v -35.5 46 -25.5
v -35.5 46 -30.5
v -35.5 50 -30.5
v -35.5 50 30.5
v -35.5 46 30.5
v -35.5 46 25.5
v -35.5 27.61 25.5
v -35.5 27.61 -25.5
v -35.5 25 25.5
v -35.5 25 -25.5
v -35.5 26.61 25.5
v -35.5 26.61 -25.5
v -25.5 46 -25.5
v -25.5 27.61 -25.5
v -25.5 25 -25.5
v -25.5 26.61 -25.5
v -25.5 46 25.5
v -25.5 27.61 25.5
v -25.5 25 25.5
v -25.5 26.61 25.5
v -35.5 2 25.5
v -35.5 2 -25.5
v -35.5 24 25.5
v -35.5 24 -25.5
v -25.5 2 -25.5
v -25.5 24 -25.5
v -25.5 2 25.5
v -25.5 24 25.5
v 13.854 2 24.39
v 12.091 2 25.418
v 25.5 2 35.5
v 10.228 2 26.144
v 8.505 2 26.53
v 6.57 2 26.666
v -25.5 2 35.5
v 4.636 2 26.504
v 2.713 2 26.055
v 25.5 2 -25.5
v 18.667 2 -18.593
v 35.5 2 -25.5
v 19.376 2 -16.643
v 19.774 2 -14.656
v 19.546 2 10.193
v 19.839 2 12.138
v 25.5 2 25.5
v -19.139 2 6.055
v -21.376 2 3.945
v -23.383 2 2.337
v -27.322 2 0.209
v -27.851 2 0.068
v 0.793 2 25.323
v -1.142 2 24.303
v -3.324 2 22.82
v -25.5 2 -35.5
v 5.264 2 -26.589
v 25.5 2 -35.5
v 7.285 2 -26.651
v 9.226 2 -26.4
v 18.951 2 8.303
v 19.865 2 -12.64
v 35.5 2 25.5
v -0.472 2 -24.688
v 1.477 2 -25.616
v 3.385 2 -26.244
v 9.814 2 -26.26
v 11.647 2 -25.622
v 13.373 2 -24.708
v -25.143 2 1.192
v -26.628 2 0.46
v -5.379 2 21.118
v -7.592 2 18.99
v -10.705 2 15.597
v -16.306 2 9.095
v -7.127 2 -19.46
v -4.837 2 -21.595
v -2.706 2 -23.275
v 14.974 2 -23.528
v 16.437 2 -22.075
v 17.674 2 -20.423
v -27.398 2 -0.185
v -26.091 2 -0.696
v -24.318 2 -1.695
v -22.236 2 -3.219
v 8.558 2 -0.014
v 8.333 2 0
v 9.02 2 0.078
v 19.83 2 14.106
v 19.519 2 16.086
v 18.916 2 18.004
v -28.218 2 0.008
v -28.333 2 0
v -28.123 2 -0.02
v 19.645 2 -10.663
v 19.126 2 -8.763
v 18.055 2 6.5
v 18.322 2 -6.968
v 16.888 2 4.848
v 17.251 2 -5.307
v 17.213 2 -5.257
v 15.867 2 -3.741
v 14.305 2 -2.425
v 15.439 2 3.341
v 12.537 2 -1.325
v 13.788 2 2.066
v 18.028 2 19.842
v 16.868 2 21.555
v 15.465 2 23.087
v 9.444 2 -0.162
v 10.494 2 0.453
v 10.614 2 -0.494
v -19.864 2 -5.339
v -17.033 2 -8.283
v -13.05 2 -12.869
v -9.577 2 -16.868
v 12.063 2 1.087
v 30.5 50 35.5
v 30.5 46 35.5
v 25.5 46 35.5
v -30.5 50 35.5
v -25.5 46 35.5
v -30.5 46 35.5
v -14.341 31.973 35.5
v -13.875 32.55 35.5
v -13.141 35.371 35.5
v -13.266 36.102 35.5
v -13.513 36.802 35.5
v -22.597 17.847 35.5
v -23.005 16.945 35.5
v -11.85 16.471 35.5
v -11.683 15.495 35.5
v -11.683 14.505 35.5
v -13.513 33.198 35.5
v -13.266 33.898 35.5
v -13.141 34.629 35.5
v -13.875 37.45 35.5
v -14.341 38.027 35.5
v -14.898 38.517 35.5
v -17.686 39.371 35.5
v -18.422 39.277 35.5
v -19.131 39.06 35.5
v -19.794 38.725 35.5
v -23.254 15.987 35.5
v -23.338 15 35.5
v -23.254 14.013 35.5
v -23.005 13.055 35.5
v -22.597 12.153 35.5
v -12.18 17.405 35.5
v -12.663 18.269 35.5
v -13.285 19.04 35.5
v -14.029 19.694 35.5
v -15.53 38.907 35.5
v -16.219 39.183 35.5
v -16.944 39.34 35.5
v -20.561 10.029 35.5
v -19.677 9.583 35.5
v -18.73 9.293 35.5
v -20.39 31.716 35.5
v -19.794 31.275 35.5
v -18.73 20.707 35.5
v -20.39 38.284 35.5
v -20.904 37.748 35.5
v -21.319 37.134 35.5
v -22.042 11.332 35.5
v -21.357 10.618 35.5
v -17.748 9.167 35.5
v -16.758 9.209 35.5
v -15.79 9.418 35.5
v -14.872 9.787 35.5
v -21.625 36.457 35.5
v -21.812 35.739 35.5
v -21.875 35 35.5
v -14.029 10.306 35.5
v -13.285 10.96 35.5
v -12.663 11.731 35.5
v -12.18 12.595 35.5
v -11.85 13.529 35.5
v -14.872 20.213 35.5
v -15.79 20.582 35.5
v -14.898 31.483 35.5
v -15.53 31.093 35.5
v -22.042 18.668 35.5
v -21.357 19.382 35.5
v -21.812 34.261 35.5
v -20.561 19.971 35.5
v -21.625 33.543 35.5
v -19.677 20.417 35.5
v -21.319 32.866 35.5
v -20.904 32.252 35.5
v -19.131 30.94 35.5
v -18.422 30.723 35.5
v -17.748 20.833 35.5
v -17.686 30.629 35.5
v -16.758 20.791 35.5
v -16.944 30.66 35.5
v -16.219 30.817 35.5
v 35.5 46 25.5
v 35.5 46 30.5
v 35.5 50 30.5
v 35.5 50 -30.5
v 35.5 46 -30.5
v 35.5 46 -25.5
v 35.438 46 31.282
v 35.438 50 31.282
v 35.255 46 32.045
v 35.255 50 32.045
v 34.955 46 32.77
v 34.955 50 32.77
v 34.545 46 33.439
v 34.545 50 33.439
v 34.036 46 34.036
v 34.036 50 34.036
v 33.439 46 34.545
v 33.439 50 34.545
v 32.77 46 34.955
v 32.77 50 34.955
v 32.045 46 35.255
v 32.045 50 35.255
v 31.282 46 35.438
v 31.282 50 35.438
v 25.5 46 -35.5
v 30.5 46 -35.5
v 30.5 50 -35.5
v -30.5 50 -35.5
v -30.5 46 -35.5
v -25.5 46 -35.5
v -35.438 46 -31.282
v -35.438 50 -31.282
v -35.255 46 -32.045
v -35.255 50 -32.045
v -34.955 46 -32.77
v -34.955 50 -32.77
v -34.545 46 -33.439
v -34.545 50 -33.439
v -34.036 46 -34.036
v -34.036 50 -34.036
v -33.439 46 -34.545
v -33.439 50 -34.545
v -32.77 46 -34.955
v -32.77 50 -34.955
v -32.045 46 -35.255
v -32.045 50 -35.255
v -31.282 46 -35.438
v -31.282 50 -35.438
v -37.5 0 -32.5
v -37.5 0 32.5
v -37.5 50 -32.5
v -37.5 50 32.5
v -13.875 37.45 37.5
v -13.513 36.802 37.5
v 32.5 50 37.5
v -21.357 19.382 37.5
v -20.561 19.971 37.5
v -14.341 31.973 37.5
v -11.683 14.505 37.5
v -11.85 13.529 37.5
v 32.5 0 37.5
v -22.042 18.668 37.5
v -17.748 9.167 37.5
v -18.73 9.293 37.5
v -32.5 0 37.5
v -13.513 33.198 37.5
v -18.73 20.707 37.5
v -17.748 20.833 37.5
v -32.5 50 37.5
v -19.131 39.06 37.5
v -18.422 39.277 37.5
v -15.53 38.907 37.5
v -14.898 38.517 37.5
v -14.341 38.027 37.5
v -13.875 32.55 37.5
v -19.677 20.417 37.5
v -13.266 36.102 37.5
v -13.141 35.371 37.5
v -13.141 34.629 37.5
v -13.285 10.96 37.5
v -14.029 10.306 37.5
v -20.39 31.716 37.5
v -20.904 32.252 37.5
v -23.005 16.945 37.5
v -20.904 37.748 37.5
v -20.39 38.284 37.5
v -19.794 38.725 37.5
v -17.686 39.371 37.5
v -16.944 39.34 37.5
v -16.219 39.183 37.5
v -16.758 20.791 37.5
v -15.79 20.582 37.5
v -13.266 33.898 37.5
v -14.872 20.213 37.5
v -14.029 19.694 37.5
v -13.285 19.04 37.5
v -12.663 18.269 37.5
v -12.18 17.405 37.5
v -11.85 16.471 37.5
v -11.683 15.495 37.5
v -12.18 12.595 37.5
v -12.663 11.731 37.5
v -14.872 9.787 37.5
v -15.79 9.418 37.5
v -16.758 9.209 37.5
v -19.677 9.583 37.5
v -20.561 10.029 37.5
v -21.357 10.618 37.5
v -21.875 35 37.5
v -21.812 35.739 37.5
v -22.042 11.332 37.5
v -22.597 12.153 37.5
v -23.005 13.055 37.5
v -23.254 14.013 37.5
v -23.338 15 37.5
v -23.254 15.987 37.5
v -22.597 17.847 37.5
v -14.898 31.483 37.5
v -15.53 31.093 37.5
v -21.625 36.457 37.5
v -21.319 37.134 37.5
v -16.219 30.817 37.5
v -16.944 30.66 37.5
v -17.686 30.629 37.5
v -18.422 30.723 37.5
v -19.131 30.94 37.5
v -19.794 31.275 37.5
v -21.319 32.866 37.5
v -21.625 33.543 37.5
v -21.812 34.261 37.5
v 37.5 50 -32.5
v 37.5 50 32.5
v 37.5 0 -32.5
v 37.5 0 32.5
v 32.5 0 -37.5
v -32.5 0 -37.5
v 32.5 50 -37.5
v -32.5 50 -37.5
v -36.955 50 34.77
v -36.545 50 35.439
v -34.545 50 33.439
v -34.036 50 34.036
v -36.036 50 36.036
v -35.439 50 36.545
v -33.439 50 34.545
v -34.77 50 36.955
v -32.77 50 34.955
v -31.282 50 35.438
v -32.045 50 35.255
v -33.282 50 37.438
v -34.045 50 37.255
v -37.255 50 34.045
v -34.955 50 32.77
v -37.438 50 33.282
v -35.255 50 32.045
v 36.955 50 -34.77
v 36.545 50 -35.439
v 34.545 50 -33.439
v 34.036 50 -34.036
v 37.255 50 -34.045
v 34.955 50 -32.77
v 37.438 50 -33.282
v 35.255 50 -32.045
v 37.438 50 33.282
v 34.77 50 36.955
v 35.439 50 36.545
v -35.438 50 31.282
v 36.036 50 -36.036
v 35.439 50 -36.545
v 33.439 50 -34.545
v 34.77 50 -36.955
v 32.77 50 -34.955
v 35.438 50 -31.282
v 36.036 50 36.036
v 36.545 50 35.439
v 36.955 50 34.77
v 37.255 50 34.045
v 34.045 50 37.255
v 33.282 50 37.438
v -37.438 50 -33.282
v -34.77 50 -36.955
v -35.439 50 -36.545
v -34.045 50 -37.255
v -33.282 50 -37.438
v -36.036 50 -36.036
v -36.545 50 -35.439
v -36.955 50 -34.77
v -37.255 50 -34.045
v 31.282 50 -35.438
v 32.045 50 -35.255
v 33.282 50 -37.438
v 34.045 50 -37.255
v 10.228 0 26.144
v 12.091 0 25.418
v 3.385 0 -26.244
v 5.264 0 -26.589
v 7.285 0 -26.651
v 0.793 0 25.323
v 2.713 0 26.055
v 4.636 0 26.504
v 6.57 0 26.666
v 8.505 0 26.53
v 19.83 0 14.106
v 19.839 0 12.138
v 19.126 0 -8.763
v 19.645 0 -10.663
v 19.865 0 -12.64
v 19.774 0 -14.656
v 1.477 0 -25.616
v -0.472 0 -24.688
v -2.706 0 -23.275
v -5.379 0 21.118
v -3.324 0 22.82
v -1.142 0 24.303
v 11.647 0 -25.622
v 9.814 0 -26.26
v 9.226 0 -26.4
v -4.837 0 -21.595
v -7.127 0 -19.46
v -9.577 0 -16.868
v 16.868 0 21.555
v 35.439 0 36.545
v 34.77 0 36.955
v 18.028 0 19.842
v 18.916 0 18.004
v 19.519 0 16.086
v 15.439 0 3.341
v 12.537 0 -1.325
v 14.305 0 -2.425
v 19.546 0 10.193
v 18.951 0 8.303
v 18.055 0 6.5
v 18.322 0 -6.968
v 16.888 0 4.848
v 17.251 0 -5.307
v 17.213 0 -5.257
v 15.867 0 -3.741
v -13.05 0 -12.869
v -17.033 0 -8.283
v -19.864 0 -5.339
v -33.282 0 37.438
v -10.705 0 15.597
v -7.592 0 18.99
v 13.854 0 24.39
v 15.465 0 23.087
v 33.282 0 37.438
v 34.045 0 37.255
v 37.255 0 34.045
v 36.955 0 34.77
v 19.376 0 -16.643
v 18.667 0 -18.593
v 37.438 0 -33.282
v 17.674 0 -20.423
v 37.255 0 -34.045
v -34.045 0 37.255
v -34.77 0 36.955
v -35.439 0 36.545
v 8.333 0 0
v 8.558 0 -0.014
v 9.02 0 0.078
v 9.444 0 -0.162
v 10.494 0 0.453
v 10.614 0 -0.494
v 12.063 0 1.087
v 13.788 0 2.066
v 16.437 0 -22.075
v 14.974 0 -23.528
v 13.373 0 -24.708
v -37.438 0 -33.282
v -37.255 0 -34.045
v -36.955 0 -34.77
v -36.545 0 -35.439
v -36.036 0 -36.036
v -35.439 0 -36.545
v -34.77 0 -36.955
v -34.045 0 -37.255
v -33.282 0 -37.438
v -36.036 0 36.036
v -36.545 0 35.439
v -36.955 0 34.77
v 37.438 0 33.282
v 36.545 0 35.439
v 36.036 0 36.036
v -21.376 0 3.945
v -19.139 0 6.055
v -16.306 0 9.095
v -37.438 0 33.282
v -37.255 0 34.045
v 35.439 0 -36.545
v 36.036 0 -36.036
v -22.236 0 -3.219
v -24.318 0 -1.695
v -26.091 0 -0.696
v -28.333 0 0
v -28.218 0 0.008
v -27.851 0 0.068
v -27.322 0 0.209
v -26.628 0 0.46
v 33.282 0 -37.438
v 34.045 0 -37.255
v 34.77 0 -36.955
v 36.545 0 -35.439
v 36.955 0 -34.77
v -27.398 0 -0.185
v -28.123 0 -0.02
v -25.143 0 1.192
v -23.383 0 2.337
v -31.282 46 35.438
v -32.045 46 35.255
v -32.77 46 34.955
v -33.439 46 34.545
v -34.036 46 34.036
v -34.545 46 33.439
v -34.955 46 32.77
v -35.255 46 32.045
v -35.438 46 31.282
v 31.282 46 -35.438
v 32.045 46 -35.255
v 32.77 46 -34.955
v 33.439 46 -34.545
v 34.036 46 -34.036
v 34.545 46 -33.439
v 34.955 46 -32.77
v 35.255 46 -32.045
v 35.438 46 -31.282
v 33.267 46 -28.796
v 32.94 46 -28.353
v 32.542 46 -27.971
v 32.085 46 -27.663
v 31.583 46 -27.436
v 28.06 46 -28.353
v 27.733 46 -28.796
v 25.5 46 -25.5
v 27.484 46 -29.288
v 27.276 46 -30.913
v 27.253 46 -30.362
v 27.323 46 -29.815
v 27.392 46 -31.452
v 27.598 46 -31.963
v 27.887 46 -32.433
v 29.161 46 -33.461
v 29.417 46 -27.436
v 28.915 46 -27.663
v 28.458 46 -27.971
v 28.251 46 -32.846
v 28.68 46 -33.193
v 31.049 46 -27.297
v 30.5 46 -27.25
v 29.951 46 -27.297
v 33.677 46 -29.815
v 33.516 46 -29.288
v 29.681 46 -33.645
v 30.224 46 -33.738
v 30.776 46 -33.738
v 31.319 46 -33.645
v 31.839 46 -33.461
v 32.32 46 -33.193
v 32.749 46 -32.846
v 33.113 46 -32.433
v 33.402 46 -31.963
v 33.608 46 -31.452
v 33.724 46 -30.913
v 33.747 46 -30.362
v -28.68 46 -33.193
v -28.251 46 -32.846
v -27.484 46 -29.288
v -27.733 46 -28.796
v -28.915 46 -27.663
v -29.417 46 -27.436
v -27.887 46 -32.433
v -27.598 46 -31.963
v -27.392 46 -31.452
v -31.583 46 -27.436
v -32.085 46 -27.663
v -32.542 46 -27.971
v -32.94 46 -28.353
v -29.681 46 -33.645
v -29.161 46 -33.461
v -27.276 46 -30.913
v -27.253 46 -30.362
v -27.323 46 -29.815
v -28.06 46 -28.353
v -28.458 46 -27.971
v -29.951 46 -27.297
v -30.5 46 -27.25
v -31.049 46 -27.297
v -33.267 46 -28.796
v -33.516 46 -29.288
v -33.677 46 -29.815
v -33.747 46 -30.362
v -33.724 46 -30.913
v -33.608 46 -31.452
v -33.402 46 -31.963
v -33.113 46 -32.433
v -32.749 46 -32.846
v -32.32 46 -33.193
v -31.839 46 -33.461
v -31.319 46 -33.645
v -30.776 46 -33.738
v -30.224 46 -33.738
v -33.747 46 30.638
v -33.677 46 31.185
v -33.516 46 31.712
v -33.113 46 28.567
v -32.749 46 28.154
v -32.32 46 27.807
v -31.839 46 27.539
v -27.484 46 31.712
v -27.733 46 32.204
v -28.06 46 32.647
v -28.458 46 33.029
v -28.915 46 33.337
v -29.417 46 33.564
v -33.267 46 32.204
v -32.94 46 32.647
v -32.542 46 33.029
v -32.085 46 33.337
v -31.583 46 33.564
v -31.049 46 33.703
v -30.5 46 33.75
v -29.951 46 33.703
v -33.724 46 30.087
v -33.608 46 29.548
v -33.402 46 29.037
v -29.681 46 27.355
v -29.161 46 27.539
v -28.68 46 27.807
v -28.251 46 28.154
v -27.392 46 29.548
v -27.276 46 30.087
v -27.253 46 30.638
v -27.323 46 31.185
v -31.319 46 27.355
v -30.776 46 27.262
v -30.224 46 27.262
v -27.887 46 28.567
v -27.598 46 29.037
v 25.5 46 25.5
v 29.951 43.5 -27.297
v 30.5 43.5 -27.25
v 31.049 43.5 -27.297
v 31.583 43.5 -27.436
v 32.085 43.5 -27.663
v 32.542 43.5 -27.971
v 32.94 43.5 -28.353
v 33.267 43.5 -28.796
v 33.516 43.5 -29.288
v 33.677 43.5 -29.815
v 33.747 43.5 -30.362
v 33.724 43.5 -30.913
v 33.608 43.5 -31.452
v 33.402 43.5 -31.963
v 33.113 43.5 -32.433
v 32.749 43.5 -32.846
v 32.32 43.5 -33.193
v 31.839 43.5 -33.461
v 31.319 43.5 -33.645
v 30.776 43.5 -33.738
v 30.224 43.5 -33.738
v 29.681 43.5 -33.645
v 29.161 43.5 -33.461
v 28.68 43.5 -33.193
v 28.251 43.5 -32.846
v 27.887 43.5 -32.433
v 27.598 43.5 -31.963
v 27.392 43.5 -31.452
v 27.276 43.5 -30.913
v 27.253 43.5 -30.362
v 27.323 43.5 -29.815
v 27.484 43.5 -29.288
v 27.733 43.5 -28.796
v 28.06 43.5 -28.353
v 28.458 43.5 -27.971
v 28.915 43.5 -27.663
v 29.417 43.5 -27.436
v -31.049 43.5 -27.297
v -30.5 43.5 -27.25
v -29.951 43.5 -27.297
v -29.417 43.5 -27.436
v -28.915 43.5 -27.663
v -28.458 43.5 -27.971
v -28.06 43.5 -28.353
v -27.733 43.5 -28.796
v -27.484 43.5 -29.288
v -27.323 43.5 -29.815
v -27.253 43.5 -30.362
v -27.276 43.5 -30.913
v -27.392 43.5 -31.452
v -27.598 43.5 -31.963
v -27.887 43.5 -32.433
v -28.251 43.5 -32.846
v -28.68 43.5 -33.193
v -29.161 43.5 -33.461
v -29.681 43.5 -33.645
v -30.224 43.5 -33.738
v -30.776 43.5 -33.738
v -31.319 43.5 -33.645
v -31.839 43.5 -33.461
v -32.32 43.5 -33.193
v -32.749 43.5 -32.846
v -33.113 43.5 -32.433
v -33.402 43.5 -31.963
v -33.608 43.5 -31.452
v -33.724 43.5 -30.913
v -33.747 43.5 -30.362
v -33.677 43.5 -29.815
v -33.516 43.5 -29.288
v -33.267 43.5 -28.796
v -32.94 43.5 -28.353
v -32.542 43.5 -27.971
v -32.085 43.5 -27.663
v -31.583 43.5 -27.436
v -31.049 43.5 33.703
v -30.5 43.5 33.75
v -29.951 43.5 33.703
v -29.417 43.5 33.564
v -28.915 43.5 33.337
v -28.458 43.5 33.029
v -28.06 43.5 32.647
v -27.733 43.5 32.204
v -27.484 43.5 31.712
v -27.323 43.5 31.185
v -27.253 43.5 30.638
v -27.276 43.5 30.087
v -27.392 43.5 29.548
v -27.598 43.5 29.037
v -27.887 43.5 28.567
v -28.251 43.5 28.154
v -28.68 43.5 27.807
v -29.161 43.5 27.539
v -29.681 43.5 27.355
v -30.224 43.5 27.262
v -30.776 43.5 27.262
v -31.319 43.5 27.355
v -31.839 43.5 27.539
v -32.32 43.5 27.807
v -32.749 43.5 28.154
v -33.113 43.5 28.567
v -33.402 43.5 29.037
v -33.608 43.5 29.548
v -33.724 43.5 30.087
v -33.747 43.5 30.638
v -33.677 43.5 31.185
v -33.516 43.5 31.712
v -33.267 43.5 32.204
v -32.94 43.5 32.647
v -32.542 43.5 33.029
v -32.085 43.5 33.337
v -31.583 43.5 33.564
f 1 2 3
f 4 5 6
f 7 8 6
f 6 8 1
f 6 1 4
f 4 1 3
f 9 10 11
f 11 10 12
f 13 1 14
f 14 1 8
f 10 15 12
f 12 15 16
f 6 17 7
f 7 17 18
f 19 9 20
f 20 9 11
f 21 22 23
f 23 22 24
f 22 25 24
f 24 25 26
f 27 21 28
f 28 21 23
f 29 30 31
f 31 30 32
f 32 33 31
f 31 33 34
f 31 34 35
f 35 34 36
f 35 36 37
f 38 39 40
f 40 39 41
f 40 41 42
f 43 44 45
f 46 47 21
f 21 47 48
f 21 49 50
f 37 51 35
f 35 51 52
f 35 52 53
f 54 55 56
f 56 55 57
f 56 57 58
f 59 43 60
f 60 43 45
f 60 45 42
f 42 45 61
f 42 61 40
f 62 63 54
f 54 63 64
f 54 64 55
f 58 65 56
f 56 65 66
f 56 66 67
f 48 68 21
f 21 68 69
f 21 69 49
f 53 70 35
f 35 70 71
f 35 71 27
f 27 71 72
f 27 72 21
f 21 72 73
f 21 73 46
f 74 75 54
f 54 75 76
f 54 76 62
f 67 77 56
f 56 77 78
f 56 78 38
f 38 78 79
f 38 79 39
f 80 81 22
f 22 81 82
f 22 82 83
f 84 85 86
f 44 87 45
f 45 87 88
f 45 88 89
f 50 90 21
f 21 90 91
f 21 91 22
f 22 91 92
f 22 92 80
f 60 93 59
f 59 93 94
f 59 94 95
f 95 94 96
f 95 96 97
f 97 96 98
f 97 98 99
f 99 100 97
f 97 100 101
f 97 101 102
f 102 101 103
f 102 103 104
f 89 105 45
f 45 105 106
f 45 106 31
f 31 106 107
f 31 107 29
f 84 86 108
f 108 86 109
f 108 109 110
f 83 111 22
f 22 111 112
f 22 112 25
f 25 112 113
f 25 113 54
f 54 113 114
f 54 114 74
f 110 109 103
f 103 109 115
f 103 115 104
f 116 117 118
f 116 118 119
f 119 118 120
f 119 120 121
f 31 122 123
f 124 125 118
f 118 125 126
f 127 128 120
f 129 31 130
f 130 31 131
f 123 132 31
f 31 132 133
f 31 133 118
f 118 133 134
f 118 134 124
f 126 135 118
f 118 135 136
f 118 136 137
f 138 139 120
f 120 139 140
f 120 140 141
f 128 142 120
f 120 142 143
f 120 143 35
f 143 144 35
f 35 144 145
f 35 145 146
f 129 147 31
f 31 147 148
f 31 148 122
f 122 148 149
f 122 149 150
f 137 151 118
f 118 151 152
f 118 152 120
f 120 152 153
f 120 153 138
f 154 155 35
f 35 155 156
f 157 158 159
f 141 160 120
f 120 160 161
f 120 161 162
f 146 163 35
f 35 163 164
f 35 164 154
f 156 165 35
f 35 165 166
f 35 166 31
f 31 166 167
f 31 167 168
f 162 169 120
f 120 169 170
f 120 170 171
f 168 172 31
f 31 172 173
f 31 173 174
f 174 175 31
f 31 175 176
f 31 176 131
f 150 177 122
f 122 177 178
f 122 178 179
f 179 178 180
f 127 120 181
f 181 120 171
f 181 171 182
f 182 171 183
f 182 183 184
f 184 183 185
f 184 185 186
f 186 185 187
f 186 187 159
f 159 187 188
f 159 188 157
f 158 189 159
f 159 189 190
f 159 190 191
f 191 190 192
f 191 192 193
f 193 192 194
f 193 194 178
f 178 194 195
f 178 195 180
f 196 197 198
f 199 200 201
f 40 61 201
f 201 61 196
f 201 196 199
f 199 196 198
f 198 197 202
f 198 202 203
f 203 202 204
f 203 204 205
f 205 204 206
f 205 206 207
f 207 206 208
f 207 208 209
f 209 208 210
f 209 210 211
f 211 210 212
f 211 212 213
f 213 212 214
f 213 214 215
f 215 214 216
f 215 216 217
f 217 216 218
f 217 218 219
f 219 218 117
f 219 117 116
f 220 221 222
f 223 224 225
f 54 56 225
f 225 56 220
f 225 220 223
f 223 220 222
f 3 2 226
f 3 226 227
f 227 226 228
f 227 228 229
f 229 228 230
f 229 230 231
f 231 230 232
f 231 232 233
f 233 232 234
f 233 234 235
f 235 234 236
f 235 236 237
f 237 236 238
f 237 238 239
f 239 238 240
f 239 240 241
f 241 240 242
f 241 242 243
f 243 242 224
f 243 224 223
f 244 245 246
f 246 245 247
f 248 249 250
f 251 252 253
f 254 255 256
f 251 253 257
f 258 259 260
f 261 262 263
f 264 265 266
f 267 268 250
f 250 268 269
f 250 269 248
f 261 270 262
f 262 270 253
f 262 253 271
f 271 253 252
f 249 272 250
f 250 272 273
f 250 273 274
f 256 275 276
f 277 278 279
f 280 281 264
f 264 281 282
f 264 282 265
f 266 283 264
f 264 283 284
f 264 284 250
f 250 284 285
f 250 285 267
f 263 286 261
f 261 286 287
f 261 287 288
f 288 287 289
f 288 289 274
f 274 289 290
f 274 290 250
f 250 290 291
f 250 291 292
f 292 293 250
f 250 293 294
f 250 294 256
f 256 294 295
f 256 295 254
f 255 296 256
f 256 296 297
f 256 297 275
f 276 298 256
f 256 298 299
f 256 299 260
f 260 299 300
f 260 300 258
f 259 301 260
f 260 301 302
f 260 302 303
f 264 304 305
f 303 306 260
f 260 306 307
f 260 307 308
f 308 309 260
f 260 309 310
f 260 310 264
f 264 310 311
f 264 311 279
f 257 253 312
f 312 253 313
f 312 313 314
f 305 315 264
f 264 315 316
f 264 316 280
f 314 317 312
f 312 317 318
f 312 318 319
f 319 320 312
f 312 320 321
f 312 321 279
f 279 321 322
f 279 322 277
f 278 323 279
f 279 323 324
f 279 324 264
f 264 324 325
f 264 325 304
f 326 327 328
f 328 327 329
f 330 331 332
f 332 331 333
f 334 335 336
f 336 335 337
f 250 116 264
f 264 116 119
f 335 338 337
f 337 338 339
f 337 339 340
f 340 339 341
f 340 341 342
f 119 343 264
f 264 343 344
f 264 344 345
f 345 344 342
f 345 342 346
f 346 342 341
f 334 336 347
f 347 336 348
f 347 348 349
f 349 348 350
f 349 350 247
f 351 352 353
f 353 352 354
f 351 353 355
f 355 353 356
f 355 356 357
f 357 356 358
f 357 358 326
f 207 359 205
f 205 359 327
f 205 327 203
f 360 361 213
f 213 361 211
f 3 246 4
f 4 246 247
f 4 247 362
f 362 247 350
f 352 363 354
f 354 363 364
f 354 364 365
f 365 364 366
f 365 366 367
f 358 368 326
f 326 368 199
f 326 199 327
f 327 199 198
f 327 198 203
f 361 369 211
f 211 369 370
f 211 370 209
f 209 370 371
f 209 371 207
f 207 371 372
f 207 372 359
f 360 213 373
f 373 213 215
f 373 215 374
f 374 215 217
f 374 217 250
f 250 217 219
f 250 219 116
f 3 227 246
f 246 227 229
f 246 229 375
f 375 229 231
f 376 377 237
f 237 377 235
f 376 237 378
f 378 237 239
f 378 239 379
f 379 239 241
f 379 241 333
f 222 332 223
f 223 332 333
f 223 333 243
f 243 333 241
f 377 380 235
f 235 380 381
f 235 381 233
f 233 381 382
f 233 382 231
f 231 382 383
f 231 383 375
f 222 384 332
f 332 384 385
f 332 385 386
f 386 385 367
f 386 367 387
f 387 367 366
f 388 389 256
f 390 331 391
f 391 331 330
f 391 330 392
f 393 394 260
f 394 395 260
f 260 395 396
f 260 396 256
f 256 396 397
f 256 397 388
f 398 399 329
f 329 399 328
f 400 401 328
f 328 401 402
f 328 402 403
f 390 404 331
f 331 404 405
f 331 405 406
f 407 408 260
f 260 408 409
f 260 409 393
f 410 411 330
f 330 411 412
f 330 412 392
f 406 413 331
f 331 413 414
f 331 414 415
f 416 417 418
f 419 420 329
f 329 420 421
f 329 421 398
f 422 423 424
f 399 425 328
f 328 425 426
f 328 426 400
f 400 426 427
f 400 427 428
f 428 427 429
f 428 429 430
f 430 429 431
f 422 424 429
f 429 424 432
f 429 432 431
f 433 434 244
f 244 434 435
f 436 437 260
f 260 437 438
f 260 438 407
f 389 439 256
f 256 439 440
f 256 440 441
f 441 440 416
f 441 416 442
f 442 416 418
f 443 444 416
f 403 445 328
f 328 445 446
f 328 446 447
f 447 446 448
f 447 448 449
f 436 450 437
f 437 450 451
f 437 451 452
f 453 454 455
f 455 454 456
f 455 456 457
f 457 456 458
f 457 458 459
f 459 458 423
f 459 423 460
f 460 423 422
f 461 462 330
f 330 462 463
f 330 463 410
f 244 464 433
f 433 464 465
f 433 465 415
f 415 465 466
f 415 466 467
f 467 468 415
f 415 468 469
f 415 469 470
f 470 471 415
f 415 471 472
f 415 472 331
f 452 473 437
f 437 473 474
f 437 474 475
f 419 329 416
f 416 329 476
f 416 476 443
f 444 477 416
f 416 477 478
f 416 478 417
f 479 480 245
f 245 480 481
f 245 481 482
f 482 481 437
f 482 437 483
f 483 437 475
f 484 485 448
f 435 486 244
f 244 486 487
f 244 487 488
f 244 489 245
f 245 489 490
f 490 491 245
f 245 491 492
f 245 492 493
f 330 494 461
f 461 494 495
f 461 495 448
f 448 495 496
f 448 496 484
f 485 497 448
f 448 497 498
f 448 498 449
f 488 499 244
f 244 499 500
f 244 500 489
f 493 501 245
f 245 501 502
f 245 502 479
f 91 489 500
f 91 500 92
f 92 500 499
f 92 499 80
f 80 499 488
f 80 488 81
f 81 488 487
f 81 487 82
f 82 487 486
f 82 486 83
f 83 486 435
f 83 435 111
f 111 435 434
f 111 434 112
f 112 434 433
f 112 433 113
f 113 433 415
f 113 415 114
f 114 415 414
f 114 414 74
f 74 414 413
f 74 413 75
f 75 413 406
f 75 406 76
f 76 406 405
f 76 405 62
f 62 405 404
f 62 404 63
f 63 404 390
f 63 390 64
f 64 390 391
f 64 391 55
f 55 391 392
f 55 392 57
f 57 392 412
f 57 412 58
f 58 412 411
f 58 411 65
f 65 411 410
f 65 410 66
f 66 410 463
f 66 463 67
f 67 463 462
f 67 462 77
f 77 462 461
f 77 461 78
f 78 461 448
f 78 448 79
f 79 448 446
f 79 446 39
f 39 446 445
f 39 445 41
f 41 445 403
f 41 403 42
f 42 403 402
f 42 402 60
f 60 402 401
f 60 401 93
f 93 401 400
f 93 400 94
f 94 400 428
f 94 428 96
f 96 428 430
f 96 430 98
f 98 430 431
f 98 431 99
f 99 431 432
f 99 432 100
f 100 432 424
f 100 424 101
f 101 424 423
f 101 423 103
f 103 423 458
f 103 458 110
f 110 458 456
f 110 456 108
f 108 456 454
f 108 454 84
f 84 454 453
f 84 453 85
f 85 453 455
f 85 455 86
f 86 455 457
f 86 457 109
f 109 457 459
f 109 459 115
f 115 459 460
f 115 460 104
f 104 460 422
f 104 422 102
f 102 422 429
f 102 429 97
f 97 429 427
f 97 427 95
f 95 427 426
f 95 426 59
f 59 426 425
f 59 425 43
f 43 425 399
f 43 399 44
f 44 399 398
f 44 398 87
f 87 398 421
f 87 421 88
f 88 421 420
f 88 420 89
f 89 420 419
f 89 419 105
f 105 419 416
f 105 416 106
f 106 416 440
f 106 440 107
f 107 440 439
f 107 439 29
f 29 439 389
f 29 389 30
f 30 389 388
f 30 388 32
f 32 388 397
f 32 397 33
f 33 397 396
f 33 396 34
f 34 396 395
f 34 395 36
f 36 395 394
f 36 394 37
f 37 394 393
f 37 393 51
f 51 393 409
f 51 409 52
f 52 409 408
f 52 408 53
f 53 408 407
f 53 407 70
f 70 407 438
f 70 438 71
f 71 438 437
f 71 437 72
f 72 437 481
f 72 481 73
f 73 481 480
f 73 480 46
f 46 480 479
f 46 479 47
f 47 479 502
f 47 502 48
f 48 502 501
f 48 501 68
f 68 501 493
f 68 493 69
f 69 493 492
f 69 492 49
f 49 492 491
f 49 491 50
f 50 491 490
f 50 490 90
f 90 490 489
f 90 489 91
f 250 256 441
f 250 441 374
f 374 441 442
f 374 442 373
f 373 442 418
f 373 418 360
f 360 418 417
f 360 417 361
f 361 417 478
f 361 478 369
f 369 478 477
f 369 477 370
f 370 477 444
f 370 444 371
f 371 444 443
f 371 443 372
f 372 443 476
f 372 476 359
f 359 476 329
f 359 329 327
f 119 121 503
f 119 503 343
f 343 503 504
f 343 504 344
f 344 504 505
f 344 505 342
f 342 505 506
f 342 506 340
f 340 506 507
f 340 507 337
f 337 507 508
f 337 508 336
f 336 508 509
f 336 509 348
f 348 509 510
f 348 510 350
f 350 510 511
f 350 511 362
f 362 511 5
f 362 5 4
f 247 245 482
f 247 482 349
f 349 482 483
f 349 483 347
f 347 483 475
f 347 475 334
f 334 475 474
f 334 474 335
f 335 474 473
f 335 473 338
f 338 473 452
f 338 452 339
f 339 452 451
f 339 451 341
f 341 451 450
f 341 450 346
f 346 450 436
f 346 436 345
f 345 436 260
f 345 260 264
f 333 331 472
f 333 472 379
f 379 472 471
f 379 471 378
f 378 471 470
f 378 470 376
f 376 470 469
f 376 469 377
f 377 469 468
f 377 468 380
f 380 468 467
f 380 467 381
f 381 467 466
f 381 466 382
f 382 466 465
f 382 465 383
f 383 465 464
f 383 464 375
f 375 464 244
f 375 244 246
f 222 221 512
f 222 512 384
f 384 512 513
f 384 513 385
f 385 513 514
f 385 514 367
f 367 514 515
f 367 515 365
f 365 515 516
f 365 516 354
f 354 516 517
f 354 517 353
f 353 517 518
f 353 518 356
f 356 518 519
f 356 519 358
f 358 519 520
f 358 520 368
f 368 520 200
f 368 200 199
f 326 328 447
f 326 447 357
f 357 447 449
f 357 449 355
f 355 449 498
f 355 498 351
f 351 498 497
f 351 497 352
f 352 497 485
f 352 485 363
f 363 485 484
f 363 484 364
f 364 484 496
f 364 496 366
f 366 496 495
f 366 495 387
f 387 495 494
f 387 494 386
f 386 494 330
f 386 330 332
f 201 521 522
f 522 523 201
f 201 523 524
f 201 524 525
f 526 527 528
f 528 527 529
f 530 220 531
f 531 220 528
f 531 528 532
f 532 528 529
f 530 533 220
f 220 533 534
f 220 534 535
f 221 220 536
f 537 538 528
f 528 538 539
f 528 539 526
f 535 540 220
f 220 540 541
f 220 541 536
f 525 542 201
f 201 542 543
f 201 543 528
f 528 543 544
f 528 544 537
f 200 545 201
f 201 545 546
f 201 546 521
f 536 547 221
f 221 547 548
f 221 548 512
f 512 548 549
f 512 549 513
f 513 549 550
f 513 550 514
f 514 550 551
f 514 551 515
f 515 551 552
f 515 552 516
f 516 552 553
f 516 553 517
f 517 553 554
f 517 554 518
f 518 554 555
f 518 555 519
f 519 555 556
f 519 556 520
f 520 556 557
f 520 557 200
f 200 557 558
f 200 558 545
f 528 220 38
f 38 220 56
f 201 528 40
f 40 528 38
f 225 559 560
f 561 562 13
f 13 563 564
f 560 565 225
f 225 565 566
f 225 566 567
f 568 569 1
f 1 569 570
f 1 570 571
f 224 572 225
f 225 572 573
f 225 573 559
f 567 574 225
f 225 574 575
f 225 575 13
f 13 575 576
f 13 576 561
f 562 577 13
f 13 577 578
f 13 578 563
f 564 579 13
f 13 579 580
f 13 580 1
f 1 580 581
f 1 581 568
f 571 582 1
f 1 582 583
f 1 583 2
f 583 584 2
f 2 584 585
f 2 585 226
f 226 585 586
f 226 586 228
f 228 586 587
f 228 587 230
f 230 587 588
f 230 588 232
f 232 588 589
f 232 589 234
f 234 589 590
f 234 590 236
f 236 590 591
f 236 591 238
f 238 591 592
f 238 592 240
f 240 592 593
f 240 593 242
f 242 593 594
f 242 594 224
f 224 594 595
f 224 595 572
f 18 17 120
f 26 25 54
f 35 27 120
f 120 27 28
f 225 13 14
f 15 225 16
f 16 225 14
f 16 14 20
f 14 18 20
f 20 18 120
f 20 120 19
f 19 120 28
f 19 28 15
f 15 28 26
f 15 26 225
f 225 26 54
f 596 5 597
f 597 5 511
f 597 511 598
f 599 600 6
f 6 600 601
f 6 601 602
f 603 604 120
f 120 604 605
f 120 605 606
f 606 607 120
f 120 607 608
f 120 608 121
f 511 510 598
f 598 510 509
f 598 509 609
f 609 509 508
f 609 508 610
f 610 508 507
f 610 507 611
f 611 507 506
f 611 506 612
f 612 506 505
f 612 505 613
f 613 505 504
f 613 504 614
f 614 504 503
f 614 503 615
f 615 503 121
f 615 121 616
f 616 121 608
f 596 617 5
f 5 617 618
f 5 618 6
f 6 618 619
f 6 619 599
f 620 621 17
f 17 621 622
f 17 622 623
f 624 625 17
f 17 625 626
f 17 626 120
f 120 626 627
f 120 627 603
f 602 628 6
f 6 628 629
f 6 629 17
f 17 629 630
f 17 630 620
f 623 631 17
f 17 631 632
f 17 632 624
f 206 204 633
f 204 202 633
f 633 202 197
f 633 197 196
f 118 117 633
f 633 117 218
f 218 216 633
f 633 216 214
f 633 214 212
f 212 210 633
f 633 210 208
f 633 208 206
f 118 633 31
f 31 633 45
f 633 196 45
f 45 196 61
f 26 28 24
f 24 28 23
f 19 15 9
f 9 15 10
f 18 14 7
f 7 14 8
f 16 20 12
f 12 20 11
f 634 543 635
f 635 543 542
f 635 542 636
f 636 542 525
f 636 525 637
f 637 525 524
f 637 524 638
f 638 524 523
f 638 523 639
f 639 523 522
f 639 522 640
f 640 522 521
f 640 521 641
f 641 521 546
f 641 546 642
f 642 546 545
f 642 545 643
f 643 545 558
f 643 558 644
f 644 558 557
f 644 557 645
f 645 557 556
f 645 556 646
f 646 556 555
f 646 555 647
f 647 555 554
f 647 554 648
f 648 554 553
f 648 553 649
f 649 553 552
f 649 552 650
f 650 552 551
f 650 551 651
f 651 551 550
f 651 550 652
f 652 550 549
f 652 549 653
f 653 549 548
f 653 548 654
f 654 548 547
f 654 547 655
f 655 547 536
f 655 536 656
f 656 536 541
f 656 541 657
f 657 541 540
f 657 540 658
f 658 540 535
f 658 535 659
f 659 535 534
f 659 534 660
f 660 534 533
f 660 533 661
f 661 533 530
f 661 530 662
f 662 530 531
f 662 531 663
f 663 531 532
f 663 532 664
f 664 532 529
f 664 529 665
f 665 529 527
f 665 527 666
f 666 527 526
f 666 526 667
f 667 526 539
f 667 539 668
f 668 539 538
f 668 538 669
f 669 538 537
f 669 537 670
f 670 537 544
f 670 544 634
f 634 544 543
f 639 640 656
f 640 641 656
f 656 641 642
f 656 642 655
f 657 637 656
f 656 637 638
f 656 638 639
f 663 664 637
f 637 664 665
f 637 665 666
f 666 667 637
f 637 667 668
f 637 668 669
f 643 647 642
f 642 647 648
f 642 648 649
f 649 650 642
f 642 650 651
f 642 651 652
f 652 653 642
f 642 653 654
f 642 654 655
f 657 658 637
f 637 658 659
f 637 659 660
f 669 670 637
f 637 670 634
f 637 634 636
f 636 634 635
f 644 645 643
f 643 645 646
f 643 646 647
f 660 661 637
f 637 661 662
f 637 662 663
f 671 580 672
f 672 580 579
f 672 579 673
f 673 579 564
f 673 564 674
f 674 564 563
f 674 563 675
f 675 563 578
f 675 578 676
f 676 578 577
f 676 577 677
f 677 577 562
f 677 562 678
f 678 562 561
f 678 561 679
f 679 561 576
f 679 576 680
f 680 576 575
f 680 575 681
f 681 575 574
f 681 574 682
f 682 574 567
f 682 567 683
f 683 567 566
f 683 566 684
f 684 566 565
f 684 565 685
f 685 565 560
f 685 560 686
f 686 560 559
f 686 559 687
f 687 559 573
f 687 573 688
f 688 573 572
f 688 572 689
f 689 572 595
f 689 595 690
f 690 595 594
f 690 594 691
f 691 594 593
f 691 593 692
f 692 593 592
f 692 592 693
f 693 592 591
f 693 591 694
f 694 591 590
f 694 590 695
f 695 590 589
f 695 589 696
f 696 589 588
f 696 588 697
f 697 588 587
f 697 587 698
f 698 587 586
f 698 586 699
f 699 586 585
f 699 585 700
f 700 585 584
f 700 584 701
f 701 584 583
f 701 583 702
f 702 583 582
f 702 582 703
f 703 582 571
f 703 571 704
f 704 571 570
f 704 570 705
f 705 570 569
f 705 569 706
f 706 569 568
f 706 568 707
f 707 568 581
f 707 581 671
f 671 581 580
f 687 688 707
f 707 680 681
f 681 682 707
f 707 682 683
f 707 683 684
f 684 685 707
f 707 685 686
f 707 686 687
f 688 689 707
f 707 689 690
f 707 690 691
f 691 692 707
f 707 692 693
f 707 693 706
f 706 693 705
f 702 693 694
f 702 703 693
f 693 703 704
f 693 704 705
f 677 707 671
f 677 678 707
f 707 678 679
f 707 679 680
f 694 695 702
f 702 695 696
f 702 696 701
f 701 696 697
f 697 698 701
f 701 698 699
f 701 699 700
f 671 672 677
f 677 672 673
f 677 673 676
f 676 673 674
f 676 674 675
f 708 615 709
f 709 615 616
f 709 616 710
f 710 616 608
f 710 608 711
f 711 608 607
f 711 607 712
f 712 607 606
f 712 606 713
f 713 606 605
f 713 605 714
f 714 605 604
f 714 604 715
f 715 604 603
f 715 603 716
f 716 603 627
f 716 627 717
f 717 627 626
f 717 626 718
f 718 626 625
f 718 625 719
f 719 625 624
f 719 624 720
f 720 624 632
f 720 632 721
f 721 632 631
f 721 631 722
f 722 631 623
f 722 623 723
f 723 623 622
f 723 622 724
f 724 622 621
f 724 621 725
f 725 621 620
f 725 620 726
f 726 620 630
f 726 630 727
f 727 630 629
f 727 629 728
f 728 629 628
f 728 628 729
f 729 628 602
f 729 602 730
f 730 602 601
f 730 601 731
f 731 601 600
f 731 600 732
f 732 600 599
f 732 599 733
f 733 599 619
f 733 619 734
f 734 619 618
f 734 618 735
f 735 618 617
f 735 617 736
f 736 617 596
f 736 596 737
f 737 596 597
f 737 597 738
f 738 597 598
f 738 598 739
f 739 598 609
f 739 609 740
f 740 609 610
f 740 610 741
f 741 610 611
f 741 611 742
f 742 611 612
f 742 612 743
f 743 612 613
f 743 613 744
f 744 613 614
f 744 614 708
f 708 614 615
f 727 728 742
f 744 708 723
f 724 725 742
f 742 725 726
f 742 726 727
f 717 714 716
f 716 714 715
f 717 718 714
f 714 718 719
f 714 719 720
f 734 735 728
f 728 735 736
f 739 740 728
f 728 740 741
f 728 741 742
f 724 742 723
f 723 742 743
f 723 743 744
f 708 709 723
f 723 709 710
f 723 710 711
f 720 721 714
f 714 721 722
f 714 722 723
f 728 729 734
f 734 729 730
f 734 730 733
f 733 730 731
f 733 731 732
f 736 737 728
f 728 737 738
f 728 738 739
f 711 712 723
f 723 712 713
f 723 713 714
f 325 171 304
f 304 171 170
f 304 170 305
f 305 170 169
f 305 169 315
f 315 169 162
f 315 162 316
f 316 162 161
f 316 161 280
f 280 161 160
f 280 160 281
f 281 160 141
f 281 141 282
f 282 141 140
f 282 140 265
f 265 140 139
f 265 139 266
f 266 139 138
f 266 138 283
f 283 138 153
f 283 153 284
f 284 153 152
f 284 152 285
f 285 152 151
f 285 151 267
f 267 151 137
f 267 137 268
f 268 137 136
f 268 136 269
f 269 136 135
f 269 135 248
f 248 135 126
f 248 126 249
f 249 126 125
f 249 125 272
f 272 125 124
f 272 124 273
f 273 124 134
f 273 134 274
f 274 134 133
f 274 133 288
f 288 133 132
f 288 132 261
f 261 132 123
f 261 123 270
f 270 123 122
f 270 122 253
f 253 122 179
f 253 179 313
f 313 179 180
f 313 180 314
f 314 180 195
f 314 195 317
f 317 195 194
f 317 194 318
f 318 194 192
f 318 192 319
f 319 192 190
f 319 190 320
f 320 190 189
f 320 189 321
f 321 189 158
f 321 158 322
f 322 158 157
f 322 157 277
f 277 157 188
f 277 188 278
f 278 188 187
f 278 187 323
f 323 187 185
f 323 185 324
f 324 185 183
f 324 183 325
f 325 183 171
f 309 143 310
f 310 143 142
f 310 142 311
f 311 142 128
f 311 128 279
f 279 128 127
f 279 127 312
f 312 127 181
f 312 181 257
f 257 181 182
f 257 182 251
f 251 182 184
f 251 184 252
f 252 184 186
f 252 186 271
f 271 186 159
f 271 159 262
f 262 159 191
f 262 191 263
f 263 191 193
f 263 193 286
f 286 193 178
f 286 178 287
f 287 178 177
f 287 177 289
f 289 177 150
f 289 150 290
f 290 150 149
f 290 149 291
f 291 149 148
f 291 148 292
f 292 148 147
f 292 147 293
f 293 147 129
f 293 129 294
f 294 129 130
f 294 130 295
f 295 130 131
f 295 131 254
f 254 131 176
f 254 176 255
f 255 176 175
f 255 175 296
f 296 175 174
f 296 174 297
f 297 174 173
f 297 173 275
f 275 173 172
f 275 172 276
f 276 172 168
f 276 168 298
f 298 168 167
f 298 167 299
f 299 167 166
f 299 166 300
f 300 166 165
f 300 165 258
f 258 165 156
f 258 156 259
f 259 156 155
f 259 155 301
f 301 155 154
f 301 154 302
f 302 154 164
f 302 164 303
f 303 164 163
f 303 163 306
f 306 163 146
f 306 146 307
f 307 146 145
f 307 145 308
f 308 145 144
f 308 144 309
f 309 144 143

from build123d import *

# Parameters (mm, degrees)
SKETCH1_W           = 75
SKETCH1_H           = 75
BOSS_EXTRUDE1_DEPTH = 50
SKETCH2_W           = 71
SKETCH2_H           = 71
CUT_EXTRUDE1_DEPTH  = 48
CUT_EXTRUDE6_DEPTH  = 2
FILLET4_R           = 5
FILLET5_R           = 5
FILLET6_R           = 5
FILLET7_R           = 5
SKETCH4_W           = 10
SKETCH4_H           = 10
BOSS_EXTRUDE2_DEPTH = 44
SKETCH5_W           = 10
SKETCH5_H           = 10
BOSS_EXTRUDE3_DEPTH = 44
SKETCH8_W           = 51
SKETCH8_H           = 1
BOSS_EXTRUDE4_DEPTH = 10
SKETCH9_W           = 51
SKETCH9_H           = 1
BOSS_EXTRUDE5_DEPTH = 10
SKETCH11_R          = 3.25
CUT_EXTRUDE8_DEPTH  = 2.5
SKETCH12_R          = 4.375
CUT_EXTRUDE9_DEPTH  = 2
SKETCH13_R          = 5.838
CUT_EXTRUDE10_DEPTH = 2


with BuildPart() as part:
    # Sketch1 → Boss-Extrude1 (new body)
    with BuildSketch(Plane(origin=(0, 0, 0), x_dir=(1, 0, 0), z_dir=(0, 1, 0))):
        Rectangle(SKETCH1_W, SKETCH1_H)
    extrude(amount=BOSS_EXTRUDE1_DEPTH)

    # Sketch2 → Cut-Extrude1 (cut)
    with BuildSketch(Plane(origin=(0, 50, 0), x_dir=(1, 0, 0), z_dir=(0, 1, 0))):
        Rectangle(SKETCH2_W, SKETCH2_H)
    extrude(amount=-CUT_EXTRUDE1_DEPTH, mode=Mode.SUBTRACT)

    # Sketch3 → Cut-Extrude6 (cut)
    with BuildSketch(Plane.XZ):
        with BuildLine():
            add(Edge.make_bspline(
                [(8.333333333, 0), (8.451740367, 0.002755681), (8.687804992, 0.024362572), (9.156850661, 0.091751534), (10.280456566, 0.34563371), (11.894311549, 0.927153054), (13.898826649, 2.013834871), (16.012913856, 3.730779379), (17.760775609, 5.821518912), (19.049737677, 8.225078468), (19.814659338, 10.889902937), (19.985573746, 13.70225433), (19.539290317, 16.528302053), (18.494901563, 19.237024306), (16.925532574, 21.678165695), (14.89875072, 23.755747946), (12.484340707, 25.370708371), (9.802384445, 26.405476858), (6.98608034, 26.794959186), (4.109785684, 26.53719328), (0.722828385, 25.487699584), (-2.940307765, 23.340193971), (-6.647366, 20.112650151), (-10.3710479, 16.053559605), (-13.910491439, 11.839455496), (-17.496638537, 7.662725627), (-20.98187941, 4.115658379), (-23.987384387, 1.758333025), (-26.330229801, 0.518546697), (-27.55448652, 0.125207567), (-28.000518844, 0.031619583), (-28.254918245, 0.003498461), (-28.299650799, 0.000763354), (-28.322057313, 2.7753e-05), (-28.333267806, 1.08e-07)],
                knots=[0, 0, 0, 0, 0, 0.005562941, 0.011125882, 0.022251763, 0.05405154, 0.085851775, 0.117651832, 0.149451632, 0.181251419, 0.213051359, 0.246907992, 0.280764683, 0.314621503, 0.348478291, 0.382335072, 0.416191783, 0.450048462, 0.482370896, 0.514693479, 0.550840193, 0.615485432, 0.680130557, 0.744775838, 0.809420945, 0.874066354, 0.938711777, 0.978091789, 0.987992515, 0.997893241, 0.998946621, 0.99947331, 1, 1, 1, 1, 1], degree=4))
            add(Edge.make_bspline(
                [(8.333333333, 0), (8.451740367, -0.002755681), (8.687804992, -0.024362572), (9.156850661, -0.091751534), (10.280456566, -0.34563371), (11.894311549, -0.927153054), (13.898826649, -2.013834871), (16.012913856, -3.730779379), (17.760775609, -5.821518912), (19.049737677, -8.225078468), (19.814659338, -10.889902937), (19.985573746, -13.70225433), (19.539290317, -16.528302053), (18.494901563, -19.237024306), (16.925532574, -21.678165695), (14.89875072, -23.755747946), (12.484340707, -25.370708371), (9.802384445, -26.405476858), (6.98608034, -26.794959186), (4.109785684, -26.53719328), (0.722828385, -25.487699584), (-2.940307765, -23.340193971), (-6.647366, -20.112650151), (-10.3710479, -16.053559605), (-13.910491439, -11.839455496), (-17.496638537, -7.662725627), (-20.98187941, -4.115658379), (-23.987384387, -1.758333025), (-26.330229801, -0.518546697), (-27.55448652, -0.125207567), (-28.000518844, -0.031619583), (-28.254918245, -0.003498461), (-28.299650799, -0.000763354), (-28.322057313, -2.7753e-05), (-28.333267806, 1.08e-07)],
                knots=[0, 0, 0, 0, 0, 0.005562941, 0.011125882, 0.022251763, 0.05405154, 0.085851775, 0.117651832, 0.149451632, 0.181251419, 0.213051359, 0.246907992, 0.280764683, 0.314621503, 0.348478291, 0.382335072, 0.416191783, 0.450048462, 0.482370896, 0.514693479, 0.550840193, 0.615485432, 0.680130557, 0.744775838, 0.809420945, 0.874066354, 0.938711777, 0.978091789, 0.987992515, 0.997893241, 0.998946621, 0.99947331, 1, 1, 1, 1, 1], degree=4))
        make_face()
    extrude(amount=-CUT_EXTRUDE6_DEPTH, mode=Mode.SUBTRACT)

    # Fillet4
    fillet4_edges = [part.edges().sort_by_distance(p)[0] for p in [
        (35.5, 26, 35.5),
        (37.5, 25, 37.5),
    ]]
    fillet(fillet4_edges, radius=FILLET4_R)

    # Fillet5
    fillet5_edges = [part.edges().sort_by_distance(p)[0] for p in [
        (-35.5, 26, 35.5),
        (-37.5, 25, 37.5),
    ]]
    fillet(fillet5_edges, radius=FILLET5_R)

    # Fillet6
    fillet6_edges = [part.edges().sort_by_distance(p)[0] for p in [
        (-35.5, 26, -35.5),
        (-37.5, 25, -37.5),
    ]]
    fillet(fillet6_edges, radius=FILLET6_R)

    # Fillet7
    fillet7_edges = [part.edges().sort_by_distance(p)[0] for p in [
        (35.5, 26, -35.5),
        (37.5, 25, -37.5),
    ]]
    fillet(fillet7_edges, radius=FILLET7_R)

    # Sketch4 → Boss-Extrude2 (add)
    with BuildSketch(Plane(origin=(0, 2, 0), x_dir=(1, 0, 0), z_dir=(0, 1, 0))):
        with Locations((30.5, 30.5)):
            Rectangle(SKETCH4_W, SKETCH4_H)
    extrude(amount=BOSS_EXTRUDE2_DEPTH)

    # Sketch5 → Boss-Extrude3 (add)
    with BuildSketch(Plane(origin=(0, 2, 0), x_dir=(1, 0, 0), z_dir=(0, 1, 0))):
        with Locations((-30.5, 30.5)):
            Rectangle(SKETCH5_W, SKETCH5_H)
        with Locations((-30.5, -30.5)):
            Rectangle(SKETCH5_W, SKETCH5_H)
        with Locations((30.5, -30.5)):
            Rectangle(SKETCH5_W, SKETCH5_H)
    extrude(amount=BOSS_EXTRUDE3_DEPTH)

    # Sketch8 → Boss-Extrude4 (add)
    with BuildSketch(Plane(origin=(-35.5, 0, 0), x_dir=(0, 0, -1), z_dir=(1, 0, 0))):
        with Locations((0, 24.5)):
            Rectangle(SKETCH8_W, SKETCH8_H)
    extrude(amount=BOSS_EXTRUDE4_DEPTH)

    # Sketch9 → Boss-Extrude5 (add)
    with BuildSketch(Plane(origin=(-35.5, 0, 0), x_dir=(0, 0, -1), z_dir=(1, 0, 0))):
        with Locations((0, 27.11)):
            Rectangle(SKETCH9_W, SKETCH9_H)
    extrude(amount=BOSS_EXTRUDE5_DEPTH)

    # Sketch11 → Cut-Extrude8 (cut)
    with BuildSketch(Plane(origin=(0, 46, 0), x_dir=(1, 0, 0), z_dir=(0, 1, 0))):
        with Locations(Location((30.5, 30.5, 0), (0, 0, 270))):
            Circle(SKETCH11_R)
        with Locations(Location((-30.5, 30.5, 0), (0, 0, 270))):
            Circle(SKETCH11_R)
        with Locations(Location((-30.5, -30.5, 0), (0, 0, 270))):
            Circle(SKETCH11_R)
    extrude(amount=-CUT_EXTRUDE8_DEPTH, mode=Mode.SUBTRACT)

    # Sketch12 → Cut-Extrude9 (cut)
    with BuildSketch(Plane(origin=(0, 0, 35.5), x_dir=(-1, 0, 0), z_dir=(0, 0, -1))):
        with Locations((17.5, 35)):
            Circle(SKETCH12_R)
    extrude(amount=-CUT_EXTRUDE9_DEPTH, mode=Mode.SUBTRACT)

    # Sketch13 → Cut-Extrude10 (cut)
    with BuildSketch(Plane(origin=(0, 0, 35.5), x_dir=(-1, 0, 0), z_dir=(0, 0, -1))):
        with Locations((17.5, 15)):
            Circle(SKETCH13_R)
    extrude(amount=-CUT_EXTRUDE10_DEPTH, mode=Mode.SUBTRACT)


solid = part.part
